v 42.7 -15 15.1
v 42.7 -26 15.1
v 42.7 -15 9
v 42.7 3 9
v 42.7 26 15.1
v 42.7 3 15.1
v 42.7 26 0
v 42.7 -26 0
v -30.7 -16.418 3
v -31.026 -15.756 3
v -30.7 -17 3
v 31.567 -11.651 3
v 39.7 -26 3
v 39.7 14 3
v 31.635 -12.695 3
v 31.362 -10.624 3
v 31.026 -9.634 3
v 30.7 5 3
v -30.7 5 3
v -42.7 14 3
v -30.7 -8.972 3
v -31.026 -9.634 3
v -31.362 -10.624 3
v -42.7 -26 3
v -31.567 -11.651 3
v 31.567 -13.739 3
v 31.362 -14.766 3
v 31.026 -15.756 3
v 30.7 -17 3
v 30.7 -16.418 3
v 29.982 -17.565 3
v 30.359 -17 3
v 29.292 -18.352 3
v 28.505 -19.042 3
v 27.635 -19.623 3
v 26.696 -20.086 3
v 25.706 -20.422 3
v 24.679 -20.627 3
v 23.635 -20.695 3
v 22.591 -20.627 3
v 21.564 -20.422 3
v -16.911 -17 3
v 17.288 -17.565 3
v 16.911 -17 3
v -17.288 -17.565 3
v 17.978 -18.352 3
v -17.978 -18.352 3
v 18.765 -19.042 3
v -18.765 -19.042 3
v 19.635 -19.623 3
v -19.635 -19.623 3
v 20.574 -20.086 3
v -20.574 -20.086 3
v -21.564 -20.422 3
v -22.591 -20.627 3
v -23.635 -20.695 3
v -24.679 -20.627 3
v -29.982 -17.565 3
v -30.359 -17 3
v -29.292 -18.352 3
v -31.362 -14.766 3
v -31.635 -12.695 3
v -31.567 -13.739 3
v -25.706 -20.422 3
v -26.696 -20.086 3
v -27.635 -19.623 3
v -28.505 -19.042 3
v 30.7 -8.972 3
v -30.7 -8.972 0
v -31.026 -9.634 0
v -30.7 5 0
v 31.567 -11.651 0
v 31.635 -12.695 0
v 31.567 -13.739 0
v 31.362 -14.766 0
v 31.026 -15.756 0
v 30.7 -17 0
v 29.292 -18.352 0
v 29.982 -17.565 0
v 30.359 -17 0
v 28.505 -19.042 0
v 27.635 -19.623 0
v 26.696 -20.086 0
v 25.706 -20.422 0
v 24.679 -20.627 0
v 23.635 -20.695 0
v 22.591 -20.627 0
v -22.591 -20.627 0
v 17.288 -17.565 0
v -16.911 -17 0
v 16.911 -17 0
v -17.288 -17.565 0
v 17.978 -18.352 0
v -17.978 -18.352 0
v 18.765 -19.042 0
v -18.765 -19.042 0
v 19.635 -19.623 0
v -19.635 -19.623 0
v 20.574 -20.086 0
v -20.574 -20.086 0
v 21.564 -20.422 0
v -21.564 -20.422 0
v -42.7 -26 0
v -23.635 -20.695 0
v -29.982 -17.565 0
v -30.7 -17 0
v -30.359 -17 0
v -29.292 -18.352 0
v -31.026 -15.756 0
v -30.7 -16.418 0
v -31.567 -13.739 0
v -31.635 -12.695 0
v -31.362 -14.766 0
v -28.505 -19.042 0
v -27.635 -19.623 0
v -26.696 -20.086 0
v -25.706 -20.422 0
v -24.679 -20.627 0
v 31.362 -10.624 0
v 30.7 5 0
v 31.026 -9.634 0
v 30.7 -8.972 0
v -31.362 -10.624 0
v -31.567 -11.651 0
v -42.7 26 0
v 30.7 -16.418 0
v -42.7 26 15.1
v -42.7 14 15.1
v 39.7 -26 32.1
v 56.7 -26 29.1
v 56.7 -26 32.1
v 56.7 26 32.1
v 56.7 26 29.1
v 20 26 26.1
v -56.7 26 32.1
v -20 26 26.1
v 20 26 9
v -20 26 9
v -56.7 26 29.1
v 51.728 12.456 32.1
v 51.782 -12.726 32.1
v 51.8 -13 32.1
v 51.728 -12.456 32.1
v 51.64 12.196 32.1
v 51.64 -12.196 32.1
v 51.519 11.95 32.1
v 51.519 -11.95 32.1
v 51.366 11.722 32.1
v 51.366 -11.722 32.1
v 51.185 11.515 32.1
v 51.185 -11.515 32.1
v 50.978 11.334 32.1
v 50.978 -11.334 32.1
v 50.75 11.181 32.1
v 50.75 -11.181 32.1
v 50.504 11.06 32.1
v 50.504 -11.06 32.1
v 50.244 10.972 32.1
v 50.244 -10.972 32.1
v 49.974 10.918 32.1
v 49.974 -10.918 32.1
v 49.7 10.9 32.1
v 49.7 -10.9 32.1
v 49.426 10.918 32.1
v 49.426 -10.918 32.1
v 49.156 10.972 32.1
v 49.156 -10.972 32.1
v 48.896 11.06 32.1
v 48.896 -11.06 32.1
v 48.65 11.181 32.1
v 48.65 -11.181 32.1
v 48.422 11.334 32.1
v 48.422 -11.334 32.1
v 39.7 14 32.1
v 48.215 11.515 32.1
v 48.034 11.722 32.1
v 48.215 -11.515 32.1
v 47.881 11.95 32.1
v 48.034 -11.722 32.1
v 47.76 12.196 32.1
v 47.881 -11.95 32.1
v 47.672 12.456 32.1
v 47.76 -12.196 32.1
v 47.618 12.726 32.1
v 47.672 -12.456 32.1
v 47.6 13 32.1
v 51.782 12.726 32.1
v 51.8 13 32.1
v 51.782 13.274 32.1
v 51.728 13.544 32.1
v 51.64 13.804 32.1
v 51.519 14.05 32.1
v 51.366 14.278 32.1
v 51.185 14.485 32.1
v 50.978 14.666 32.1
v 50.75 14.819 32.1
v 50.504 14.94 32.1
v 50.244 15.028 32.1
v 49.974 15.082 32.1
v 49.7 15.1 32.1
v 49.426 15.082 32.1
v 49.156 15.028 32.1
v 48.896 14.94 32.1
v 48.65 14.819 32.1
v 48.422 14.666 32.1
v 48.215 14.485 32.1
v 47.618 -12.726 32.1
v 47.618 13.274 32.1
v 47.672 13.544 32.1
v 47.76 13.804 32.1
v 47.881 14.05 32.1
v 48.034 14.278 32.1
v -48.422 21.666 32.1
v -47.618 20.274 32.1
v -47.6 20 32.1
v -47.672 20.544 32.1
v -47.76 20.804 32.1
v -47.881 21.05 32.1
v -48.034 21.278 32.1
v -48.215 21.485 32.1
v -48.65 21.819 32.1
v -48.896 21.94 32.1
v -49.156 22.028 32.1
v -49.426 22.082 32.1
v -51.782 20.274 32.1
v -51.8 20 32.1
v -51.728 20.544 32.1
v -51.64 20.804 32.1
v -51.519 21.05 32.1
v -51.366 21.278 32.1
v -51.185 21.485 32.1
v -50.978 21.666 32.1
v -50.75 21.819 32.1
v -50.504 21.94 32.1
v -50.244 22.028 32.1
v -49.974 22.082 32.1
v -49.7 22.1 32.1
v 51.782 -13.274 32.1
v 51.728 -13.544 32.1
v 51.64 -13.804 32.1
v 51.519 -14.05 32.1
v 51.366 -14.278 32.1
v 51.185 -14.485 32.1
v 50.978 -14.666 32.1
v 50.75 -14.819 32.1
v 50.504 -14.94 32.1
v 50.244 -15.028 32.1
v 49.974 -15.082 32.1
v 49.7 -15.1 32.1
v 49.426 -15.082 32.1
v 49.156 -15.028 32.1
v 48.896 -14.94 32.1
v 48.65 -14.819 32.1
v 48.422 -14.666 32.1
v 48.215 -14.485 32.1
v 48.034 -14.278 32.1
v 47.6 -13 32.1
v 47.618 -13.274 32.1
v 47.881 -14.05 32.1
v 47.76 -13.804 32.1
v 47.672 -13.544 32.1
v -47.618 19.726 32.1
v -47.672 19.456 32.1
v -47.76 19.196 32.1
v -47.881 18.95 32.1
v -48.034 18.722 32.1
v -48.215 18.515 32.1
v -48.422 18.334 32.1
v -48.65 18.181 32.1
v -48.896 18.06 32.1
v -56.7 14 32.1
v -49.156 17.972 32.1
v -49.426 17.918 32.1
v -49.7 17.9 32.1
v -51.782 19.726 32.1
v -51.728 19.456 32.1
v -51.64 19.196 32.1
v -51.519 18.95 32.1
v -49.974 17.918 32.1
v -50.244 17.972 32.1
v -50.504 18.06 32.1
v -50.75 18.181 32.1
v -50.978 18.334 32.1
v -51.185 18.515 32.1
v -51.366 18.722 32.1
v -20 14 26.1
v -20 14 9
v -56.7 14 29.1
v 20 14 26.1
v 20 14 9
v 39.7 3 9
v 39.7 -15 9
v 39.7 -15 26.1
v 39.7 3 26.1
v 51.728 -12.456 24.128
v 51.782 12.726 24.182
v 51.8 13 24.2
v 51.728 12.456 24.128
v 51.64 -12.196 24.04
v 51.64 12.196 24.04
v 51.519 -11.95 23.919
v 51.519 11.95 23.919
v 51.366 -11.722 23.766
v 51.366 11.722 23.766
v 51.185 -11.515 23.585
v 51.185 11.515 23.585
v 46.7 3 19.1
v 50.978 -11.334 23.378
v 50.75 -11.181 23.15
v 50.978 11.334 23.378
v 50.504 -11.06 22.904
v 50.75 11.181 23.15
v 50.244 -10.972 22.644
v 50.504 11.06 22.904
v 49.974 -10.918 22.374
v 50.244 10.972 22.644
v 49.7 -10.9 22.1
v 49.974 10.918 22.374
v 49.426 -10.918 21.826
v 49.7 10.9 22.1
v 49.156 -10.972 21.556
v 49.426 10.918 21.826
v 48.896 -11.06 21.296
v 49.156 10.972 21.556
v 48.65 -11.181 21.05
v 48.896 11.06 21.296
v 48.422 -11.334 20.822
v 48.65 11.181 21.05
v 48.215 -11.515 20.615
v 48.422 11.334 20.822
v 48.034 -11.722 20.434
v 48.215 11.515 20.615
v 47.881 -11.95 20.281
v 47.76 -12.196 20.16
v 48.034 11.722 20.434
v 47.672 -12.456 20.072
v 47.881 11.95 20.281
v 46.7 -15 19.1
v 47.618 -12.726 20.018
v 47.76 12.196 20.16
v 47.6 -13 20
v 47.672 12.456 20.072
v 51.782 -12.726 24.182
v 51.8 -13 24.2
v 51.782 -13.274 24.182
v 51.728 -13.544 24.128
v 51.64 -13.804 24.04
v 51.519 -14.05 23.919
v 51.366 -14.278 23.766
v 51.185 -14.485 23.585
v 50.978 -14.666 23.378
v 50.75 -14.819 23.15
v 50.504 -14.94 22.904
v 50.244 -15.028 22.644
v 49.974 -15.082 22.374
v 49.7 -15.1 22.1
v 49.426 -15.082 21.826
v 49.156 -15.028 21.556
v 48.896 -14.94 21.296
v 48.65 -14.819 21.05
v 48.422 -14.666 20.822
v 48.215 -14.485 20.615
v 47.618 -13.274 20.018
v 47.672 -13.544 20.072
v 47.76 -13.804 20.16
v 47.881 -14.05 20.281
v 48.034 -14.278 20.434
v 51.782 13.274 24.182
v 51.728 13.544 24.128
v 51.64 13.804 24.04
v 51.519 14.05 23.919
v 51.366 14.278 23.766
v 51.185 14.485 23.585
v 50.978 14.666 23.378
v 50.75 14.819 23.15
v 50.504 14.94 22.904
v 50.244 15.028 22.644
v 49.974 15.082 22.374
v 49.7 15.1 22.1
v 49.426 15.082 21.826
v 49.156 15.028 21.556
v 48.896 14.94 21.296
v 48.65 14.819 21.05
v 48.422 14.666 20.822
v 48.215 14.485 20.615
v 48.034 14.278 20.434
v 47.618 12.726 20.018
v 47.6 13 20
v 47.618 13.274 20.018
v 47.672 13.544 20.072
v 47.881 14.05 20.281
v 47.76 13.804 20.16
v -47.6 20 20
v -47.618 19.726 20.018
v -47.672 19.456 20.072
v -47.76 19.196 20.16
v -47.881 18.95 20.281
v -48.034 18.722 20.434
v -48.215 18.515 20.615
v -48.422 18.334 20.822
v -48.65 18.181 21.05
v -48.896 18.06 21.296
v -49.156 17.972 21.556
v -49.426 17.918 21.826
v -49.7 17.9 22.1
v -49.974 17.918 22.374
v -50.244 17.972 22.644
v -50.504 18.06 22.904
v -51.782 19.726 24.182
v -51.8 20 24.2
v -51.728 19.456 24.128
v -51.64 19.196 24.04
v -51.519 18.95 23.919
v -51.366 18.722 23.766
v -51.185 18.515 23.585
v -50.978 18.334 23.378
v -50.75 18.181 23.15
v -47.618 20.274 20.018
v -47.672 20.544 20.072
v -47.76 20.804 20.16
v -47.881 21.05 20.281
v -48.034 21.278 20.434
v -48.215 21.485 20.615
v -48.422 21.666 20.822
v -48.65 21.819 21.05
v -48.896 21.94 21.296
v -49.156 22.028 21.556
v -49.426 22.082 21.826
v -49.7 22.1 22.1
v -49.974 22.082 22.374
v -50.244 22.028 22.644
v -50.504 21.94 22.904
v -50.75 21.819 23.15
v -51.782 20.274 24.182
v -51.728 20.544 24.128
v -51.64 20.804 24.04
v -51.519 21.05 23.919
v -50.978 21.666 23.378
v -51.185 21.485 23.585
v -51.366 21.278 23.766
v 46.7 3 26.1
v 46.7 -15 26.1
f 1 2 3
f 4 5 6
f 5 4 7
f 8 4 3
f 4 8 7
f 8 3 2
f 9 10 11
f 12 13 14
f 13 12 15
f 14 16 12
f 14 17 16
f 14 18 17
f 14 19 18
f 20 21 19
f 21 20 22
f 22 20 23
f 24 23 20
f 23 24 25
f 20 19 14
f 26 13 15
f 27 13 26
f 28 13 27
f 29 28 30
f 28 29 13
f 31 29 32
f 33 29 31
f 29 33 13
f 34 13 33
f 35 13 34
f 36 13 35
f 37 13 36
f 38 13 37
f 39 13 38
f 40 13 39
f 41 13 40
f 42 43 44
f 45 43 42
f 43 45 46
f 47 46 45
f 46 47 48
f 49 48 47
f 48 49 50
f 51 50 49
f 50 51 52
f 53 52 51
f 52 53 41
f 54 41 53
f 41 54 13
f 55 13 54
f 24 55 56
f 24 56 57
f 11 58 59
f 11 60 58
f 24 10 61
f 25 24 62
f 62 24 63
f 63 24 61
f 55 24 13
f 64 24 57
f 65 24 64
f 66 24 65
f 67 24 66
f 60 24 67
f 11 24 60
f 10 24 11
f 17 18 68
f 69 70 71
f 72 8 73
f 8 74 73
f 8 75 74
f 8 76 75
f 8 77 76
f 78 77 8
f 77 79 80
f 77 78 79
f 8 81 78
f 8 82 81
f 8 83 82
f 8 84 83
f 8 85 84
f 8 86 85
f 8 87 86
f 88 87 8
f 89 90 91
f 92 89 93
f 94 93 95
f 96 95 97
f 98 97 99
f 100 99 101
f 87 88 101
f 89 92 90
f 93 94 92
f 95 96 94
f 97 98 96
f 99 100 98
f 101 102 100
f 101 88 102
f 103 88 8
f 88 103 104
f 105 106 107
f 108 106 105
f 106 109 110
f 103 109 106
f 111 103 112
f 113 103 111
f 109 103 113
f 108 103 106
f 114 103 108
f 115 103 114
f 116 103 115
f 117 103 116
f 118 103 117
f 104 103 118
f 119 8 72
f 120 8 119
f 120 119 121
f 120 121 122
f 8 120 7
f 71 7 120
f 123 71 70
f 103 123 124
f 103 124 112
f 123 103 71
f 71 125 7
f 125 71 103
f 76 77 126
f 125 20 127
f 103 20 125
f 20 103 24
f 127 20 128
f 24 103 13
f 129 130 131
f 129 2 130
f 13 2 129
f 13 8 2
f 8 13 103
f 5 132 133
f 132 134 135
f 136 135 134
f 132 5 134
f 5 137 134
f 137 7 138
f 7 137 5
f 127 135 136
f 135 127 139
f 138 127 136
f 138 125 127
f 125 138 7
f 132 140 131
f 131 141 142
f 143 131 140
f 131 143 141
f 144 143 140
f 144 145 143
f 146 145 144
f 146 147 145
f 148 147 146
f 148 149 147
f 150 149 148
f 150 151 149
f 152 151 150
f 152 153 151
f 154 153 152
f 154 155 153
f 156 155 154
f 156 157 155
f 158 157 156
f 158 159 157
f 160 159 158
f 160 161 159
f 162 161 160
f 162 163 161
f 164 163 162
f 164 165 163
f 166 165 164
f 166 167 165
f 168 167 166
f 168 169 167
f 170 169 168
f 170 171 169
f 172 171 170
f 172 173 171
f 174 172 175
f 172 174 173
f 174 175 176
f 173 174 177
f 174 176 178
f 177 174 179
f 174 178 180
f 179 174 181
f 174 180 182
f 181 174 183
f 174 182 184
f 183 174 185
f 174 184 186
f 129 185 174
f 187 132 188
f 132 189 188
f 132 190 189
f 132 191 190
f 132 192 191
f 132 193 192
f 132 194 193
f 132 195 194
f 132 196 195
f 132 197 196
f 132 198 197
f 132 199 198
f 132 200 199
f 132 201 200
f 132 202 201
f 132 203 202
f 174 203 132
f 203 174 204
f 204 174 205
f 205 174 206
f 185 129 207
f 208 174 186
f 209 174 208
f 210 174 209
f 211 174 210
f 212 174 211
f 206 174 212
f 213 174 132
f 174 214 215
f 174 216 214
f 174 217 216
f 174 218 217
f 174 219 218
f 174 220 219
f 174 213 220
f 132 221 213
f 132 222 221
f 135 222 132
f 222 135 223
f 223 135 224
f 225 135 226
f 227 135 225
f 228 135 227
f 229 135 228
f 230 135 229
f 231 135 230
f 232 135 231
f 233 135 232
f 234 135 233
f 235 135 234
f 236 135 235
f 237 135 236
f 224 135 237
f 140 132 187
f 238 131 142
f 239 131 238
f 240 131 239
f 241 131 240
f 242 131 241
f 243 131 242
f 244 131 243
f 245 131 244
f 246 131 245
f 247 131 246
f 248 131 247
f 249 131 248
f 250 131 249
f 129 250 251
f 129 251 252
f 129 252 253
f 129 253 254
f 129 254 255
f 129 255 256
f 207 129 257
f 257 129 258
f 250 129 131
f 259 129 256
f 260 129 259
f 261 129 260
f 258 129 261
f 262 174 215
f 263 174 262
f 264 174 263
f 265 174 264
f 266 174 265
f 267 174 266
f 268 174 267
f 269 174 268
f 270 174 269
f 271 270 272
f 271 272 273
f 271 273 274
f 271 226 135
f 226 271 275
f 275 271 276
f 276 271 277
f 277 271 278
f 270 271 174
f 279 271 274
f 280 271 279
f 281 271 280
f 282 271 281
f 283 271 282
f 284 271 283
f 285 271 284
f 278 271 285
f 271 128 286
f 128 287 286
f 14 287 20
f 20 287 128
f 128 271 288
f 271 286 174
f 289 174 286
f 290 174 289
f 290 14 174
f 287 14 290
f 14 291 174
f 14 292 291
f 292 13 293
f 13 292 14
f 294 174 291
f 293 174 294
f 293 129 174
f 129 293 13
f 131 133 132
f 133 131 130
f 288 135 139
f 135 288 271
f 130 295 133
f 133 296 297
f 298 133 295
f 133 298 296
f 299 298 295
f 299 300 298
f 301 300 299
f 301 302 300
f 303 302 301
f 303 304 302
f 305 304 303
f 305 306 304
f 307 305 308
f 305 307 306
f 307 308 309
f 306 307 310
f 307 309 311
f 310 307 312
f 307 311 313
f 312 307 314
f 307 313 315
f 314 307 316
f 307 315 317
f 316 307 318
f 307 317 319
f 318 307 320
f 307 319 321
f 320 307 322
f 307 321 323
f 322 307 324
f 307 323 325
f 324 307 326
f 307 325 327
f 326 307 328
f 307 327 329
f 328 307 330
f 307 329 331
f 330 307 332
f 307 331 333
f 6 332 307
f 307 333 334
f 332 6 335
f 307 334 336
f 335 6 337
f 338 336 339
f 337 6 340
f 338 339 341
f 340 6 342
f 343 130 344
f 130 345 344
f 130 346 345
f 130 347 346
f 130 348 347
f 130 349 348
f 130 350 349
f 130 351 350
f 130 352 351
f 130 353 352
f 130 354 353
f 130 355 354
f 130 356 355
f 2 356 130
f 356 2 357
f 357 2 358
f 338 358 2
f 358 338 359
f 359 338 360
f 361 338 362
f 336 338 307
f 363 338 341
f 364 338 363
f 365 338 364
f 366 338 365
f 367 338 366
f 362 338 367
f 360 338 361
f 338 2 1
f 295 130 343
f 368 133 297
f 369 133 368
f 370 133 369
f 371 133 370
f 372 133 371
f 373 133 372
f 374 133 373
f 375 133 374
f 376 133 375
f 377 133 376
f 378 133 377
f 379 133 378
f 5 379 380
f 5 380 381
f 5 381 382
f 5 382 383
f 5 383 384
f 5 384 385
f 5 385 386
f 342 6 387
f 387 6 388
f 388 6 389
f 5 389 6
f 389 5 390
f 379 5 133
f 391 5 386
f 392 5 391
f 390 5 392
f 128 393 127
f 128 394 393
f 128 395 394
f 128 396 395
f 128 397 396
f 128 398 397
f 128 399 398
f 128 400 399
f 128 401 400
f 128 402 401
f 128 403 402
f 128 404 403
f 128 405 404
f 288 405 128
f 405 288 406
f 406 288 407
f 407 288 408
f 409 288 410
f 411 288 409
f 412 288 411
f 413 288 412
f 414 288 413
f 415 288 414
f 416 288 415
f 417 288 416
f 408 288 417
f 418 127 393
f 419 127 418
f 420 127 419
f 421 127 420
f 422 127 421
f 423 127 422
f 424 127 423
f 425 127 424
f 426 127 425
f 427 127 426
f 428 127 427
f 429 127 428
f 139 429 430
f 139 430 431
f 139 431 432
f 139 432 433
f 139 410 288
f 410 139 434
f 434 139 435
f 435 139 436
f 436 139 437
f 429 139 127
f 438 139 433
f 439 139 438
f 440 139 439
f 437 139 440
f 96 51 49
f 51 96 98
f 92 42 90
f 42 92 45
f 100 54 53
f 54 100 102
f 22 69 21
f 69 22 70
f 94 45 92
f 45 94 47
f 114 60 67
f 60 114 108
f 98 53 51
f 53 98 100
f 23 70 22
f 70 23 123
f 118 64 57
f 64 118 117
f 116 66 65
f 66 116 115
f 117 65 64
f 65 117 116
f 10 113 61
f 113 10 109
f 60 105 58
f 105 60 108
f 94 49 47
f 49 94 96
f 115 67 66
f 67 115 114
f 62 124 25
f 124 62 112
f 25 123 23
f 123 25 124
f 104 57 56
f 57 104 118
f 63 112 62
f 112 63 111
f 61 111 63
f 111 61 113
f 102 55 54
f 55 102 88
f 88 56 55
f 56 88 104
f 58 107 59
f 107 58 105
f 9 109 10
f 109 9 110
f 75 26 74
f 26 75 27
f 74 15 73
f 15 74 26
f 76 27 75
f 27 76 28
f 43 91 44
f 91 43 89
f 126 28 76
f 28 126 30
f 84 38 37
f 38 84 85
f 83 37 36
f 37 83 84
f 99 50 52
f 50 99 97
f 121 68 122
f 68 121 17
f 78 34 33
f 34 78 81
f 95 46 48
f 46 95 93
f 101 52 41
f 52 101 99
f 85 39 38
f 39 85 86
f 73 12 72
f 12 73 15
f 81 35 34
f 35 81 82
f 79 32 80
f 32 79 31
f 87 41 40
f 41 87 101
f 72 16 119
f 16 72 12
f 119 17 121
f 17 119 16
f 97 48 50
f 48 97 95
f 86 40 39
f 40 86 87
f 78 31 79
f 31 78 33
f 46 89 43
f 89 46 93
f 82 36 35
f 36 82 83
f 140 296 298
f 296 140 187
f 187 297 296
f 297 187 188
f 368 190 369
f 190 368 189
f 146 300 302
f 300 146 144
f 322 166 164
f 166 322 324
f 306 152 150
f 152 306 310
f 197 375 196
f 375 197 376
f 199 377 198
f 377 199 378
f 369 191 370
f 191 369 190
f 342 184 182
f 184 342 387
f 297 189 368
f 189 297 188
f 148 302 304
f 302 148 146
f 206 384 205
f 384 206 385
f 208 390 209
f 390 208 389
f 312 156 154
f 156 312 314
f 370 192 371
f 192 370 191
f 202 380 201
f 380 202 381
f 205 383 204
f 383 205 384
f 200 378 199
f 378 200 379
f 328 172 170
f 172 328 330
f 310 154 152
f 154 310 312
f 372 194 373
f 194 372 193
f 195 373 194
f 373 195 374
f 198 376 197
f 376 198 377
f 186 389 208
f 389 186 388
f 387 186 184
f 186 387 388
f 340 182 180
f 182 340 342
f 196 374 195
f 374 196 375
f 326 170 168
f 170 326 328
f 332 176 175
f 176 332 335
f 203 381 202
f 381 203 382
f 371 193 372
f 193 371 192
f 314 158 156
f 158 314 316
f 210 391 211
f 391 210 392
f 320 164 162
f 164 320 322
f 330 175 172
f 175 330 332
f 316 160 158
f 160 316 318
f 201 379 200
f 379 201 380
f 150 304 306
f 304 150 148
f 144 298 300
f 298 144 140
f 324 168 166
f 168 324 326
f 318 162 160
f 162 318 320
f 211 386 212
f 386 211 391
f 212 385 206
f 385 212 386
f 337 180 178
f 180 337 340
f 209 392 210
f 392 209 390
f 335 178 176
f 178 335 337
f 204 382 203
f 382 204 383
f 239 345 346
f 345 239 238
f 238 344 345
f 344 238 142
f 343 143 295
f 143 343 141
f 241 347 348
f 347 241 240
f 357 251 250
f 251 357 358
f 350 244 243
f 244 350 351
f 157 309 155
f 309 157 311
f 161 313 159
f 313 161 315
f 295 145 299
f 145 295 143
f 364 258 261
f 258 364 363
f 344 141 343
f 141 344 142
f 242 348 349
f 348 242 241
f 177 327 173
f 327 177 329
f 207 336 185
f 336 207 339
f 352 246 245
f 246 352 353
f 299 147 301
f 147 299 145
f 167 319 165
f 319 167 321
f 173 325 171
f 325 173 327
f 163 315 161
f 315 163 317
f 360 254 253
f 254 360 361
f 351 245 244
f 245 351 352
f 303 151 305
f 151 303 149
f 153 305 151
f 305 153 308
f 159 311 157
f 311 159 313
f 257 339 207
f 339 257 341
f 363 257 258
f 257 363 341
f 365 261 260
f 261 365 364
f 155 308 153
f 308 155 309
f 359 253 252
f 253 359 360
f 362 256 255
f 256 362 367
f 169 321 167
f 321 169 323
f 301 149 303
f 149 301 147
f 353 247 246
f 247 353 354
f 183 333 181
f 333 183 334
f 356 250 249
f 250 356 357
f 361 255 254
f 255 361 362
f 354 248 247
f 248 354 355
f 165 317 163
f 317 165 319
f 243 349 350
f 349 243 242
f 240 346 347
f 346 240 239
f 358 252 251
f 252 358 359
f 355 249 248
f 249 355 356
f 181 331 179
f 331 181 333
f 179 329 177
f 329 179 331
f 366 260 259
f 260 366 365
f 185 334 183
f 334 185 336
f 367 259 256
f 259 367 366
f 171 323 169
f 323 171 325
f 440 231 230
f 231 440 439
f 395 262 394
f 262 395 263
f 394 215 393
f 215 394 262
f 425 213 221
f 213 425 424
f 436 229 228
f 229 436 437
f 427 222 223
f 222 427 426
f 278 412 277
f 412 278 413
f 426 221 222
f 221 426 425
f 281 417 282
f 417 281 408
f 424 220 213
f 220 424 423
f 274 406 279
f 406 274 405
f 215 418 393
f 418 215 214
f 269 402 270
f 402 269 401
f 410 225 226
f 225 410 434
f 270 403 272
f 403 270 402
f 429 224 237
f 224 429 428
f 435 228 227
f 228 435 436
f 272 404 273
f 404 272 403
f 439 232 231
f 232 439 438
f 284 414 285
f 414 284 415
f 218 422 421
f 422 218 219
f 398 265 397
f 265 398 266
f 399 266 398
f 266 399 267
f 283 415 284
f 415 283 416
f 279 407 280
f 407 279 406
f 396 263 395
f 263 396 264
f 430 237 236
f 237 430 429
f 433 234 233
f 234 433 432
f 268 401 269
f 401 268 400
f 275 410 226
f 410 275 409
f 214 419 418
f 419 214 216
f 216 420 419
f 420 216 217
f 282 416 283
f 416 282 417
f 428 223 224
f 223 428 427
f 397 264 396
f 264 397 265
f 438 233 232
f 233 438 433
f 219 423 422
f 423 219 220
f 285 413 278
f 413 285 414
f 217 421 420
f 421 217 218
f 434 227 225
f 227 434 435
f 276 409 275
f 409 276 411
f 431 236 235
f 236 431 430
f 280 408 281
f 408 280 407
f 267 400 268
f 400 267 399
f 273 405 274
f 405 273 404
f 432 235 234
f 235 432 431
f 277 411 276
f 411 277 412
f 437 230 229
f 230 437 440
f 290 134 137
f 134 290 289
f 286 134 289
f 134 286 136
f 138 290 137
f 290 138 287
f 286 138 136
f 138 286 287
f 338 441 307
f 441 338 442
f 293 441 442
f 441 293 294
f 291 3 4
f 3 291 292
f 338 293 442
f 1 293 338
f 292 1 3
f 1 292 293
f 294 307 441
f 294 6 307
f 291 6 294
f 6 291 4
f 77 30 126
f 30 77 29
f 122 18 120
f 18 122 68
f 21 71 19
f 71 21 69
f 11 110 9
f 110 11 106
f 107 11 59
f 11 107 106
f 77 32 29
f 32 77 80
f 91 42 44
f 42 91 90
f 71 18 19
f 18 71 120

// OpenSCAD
// file: ../../lib/end_cup.scad
/* Reusable under-desk end cup with a single side wall.

   Print TWO, but they are MIRRORED, not identical. Print one, then mirror it
   along Y in the slicer for the second. Rotating instead of mirroring would put
   the side wall on the wrong face.

   Use this instead of lib/end_bracket.scad when a device has ports spread along
   one long face right out to its corners. An end bracket runs side walls in
   from each end along BOTH long faces and would bury them. This has a wall on
   the clear face only, so nothing ever crosses the port face.

   The end wall is deliberately thick (end_wall_d) rather than a 3 mm sheet,
   because with one side wall gone it is the only thing the -X flange has to
   stand on.

   Flanges are asymmetric by necessity: the +X one runs the full cup length over
   its side wall and takes two screws; the -X one exists only over the end wall
   and takes one. Three screws per cup, spread over the footprint rather than
   all on one edge.

   Usage:
       use <../lib/end_cup.scad>
       end_cup(device_w = 79.0, device_h = 28.7);
*/

module end_cup(
    device_w,
    device_h,

    cup_d      = 40.0,
    end_wall_d = 12.0,

    fit_clear = 0.4,
    head_gap  = 0.4,

    wall    = 3.0,
    floor_t = 3.0,
    rim     = 9.0,

    flange_t = 3.0,
    flange_w = 14.0,
    screw_d  = 4.2,

    win_border = 6.0,
    end_win    = 40.0,
    side_win   = 18.0,

    button_from_end  = undef,
    button_from_edge = undef,
    button_relief_d  = 16.0
) {
    pocket_w = device_w + fit_clear;
    wall_h   = device_h + head_gap;
    total_h  = floor_t + wall_h;
    outer_w  = pocket_w + 2 * wall;
    outer_d  = end_wall_d + cup_d;

    x_wall = pocket_w / 2;          // inner face of the side wall
    y0     = -outer_d / 2;          // outer face of the end wall

    eps = 0.01;
    has_button = button_from_end != undef && button_from_edge != undef;

    module floor_slab() {
        translate([-outer_w / 2, y0, 0])
            cube([outer_w, outer_d, floor_t]);
    }

    module end_wall() {
        translate([-outer_w / 2, y0, 0])
            cube([outer_w, end_wall_d, total_h]);
    }

    /* +X only. The -X long face is left completely open for the ports. */
    module side_wall() {
        translate([x_wall, y0, 0])
            cube([outer_w / 2 - x_wall, outer_d, total_h]);
    }

    module end_window() {
        h = wall_h - 2 * win_border;
        translate([0, y0 + end_wall_d / 2, floor_t + wall_h / 2])
            cube([end_win, end_wall_d + 2, h], center = true);
    }

    module side_window() {
        h = wall_h - 2 * win_border;
        translate([outer_w / 2, y0 + end_wall_d + cup_d / 2,
                   floor_t + wall_h / 2])
            cube([2 * wall + 2, side_win, h], center = true);
    }

    module floor_window() {
        w = pocket_w - 2 * rim;
        d = cup_d - 2 * rim;
        translate([0, y0 + end_wall_d + rim + d / 2, floor_t / 2])
            cube([w, d, floor_t + 2], center = true);
    }

    module button_reliefs() {
        y = y0 + end_wall_d + button_from_end;
        for (sx = [-1, 1])
            translate([sx * (device_w / 2 - button_from_edge), y, floor_t / 2])
                cylinder(d = button_relief_d, h = floor_t + 2, center = true);
    }

    /* Full-length flange over the side wall, two screws. */
    module flange_side() {
        translate([outer_w / 2 + flange_w / 2, y0 + outer_d / 2,
                   total_h - flange_t / 2])
            cube([flange_w, outer_d, flange_t], center = true);
    }

    /* Stub flange over the end wall only - there is no side wall under it. */
    module flange_end() {
        translate([-(outer_w / 2 + flange_w / 2), y0 + end_wall_d / 2,
                   total_h - flange_t / 2])
            cube([flange_w, end_wall_d, flange_t], center = true);
    }

    /* Continuous, never discrete. A flange is anchored on one edge only, so
       gaps between gussets are cantilevers rather than bridges. */
    module chamfer(sx, y_centre, length) {
        translate([sx * outer_w / 2, y_centre, total_h - flange_t])
            rotate([90, 0, 0])
                linear_extrude(length, center = true)
                    polygon([[0, 0], [sx * flange_w, 0], [0, -flange_w]]);
    }

    module screws() {
        for (sy = [0.25, 0.75])
            translate([outer_w / 2 + flange_w / 2, y0 + sy * outer_d,
                       total_h / 2])
                cylinder(d = screw_d, h = total_h + 2, center = true);
        translate([-(outer_w / 2 + flange_w / 2), y0 + end_wall_d / 2,
                   total_h / 2])
            cylinder(d = screw_d, h = total_h + 2, center = true);
    }

    difference() {
        union() {
            floor_slab();
            end_wall();
            side_wall();
            flange_side();
            flange_end();
            chamfer(1, y0 + outer_d / 2, outer_d);
            chamfer(-1, y0 + end_wall_d / 2, end_wall_d);
        }
        end_window();
        side_window();
        floor_window();
        if (has_button) button_reliefs();
        screws();
    }
}
// main file
/* Lindy 43202 KVM dock - under-desk end cup, MIRRORED half. Print ONE.

   This is the pair to cup.scad. The two are NOT identical: mirroring across Y
   moves the end wall to the far end while keeping the solid side wall on the
   same long face, which is what the second end of the dock needs. Printing two
   of cup.scad puts the solid wall against the port face at one end.

   Dock is 185 x 79 x 28.7 mm (Lindy 43202 official spec). All ports run along
   one long face, out to both corners - DC 20V at one end, PD at the other - so
   an end bracket with side walls on both long faces would bury them. This has a
   wall on the clear long face only.

   Mounts UPSIDE DOWN so the POWER/SWITCH button faces the floor. Button is
   11.41 mm across, 20.99 mm from the short end and 10.16 mm from the long edge
   to its near side, hence centre 26.695 / 15.865. Without the relief it lands
   on the floor and the dock rests on it, holding it pressed.
*/

use <../../lib/end_cup.scad>

$fn = 48;

mirror([0, 1, 0])
end_cup(
    device_w = 79.00,
    device_h = 28.70,

    button_from_end  = 26.695,
    button_from_edge = 15.865
);
